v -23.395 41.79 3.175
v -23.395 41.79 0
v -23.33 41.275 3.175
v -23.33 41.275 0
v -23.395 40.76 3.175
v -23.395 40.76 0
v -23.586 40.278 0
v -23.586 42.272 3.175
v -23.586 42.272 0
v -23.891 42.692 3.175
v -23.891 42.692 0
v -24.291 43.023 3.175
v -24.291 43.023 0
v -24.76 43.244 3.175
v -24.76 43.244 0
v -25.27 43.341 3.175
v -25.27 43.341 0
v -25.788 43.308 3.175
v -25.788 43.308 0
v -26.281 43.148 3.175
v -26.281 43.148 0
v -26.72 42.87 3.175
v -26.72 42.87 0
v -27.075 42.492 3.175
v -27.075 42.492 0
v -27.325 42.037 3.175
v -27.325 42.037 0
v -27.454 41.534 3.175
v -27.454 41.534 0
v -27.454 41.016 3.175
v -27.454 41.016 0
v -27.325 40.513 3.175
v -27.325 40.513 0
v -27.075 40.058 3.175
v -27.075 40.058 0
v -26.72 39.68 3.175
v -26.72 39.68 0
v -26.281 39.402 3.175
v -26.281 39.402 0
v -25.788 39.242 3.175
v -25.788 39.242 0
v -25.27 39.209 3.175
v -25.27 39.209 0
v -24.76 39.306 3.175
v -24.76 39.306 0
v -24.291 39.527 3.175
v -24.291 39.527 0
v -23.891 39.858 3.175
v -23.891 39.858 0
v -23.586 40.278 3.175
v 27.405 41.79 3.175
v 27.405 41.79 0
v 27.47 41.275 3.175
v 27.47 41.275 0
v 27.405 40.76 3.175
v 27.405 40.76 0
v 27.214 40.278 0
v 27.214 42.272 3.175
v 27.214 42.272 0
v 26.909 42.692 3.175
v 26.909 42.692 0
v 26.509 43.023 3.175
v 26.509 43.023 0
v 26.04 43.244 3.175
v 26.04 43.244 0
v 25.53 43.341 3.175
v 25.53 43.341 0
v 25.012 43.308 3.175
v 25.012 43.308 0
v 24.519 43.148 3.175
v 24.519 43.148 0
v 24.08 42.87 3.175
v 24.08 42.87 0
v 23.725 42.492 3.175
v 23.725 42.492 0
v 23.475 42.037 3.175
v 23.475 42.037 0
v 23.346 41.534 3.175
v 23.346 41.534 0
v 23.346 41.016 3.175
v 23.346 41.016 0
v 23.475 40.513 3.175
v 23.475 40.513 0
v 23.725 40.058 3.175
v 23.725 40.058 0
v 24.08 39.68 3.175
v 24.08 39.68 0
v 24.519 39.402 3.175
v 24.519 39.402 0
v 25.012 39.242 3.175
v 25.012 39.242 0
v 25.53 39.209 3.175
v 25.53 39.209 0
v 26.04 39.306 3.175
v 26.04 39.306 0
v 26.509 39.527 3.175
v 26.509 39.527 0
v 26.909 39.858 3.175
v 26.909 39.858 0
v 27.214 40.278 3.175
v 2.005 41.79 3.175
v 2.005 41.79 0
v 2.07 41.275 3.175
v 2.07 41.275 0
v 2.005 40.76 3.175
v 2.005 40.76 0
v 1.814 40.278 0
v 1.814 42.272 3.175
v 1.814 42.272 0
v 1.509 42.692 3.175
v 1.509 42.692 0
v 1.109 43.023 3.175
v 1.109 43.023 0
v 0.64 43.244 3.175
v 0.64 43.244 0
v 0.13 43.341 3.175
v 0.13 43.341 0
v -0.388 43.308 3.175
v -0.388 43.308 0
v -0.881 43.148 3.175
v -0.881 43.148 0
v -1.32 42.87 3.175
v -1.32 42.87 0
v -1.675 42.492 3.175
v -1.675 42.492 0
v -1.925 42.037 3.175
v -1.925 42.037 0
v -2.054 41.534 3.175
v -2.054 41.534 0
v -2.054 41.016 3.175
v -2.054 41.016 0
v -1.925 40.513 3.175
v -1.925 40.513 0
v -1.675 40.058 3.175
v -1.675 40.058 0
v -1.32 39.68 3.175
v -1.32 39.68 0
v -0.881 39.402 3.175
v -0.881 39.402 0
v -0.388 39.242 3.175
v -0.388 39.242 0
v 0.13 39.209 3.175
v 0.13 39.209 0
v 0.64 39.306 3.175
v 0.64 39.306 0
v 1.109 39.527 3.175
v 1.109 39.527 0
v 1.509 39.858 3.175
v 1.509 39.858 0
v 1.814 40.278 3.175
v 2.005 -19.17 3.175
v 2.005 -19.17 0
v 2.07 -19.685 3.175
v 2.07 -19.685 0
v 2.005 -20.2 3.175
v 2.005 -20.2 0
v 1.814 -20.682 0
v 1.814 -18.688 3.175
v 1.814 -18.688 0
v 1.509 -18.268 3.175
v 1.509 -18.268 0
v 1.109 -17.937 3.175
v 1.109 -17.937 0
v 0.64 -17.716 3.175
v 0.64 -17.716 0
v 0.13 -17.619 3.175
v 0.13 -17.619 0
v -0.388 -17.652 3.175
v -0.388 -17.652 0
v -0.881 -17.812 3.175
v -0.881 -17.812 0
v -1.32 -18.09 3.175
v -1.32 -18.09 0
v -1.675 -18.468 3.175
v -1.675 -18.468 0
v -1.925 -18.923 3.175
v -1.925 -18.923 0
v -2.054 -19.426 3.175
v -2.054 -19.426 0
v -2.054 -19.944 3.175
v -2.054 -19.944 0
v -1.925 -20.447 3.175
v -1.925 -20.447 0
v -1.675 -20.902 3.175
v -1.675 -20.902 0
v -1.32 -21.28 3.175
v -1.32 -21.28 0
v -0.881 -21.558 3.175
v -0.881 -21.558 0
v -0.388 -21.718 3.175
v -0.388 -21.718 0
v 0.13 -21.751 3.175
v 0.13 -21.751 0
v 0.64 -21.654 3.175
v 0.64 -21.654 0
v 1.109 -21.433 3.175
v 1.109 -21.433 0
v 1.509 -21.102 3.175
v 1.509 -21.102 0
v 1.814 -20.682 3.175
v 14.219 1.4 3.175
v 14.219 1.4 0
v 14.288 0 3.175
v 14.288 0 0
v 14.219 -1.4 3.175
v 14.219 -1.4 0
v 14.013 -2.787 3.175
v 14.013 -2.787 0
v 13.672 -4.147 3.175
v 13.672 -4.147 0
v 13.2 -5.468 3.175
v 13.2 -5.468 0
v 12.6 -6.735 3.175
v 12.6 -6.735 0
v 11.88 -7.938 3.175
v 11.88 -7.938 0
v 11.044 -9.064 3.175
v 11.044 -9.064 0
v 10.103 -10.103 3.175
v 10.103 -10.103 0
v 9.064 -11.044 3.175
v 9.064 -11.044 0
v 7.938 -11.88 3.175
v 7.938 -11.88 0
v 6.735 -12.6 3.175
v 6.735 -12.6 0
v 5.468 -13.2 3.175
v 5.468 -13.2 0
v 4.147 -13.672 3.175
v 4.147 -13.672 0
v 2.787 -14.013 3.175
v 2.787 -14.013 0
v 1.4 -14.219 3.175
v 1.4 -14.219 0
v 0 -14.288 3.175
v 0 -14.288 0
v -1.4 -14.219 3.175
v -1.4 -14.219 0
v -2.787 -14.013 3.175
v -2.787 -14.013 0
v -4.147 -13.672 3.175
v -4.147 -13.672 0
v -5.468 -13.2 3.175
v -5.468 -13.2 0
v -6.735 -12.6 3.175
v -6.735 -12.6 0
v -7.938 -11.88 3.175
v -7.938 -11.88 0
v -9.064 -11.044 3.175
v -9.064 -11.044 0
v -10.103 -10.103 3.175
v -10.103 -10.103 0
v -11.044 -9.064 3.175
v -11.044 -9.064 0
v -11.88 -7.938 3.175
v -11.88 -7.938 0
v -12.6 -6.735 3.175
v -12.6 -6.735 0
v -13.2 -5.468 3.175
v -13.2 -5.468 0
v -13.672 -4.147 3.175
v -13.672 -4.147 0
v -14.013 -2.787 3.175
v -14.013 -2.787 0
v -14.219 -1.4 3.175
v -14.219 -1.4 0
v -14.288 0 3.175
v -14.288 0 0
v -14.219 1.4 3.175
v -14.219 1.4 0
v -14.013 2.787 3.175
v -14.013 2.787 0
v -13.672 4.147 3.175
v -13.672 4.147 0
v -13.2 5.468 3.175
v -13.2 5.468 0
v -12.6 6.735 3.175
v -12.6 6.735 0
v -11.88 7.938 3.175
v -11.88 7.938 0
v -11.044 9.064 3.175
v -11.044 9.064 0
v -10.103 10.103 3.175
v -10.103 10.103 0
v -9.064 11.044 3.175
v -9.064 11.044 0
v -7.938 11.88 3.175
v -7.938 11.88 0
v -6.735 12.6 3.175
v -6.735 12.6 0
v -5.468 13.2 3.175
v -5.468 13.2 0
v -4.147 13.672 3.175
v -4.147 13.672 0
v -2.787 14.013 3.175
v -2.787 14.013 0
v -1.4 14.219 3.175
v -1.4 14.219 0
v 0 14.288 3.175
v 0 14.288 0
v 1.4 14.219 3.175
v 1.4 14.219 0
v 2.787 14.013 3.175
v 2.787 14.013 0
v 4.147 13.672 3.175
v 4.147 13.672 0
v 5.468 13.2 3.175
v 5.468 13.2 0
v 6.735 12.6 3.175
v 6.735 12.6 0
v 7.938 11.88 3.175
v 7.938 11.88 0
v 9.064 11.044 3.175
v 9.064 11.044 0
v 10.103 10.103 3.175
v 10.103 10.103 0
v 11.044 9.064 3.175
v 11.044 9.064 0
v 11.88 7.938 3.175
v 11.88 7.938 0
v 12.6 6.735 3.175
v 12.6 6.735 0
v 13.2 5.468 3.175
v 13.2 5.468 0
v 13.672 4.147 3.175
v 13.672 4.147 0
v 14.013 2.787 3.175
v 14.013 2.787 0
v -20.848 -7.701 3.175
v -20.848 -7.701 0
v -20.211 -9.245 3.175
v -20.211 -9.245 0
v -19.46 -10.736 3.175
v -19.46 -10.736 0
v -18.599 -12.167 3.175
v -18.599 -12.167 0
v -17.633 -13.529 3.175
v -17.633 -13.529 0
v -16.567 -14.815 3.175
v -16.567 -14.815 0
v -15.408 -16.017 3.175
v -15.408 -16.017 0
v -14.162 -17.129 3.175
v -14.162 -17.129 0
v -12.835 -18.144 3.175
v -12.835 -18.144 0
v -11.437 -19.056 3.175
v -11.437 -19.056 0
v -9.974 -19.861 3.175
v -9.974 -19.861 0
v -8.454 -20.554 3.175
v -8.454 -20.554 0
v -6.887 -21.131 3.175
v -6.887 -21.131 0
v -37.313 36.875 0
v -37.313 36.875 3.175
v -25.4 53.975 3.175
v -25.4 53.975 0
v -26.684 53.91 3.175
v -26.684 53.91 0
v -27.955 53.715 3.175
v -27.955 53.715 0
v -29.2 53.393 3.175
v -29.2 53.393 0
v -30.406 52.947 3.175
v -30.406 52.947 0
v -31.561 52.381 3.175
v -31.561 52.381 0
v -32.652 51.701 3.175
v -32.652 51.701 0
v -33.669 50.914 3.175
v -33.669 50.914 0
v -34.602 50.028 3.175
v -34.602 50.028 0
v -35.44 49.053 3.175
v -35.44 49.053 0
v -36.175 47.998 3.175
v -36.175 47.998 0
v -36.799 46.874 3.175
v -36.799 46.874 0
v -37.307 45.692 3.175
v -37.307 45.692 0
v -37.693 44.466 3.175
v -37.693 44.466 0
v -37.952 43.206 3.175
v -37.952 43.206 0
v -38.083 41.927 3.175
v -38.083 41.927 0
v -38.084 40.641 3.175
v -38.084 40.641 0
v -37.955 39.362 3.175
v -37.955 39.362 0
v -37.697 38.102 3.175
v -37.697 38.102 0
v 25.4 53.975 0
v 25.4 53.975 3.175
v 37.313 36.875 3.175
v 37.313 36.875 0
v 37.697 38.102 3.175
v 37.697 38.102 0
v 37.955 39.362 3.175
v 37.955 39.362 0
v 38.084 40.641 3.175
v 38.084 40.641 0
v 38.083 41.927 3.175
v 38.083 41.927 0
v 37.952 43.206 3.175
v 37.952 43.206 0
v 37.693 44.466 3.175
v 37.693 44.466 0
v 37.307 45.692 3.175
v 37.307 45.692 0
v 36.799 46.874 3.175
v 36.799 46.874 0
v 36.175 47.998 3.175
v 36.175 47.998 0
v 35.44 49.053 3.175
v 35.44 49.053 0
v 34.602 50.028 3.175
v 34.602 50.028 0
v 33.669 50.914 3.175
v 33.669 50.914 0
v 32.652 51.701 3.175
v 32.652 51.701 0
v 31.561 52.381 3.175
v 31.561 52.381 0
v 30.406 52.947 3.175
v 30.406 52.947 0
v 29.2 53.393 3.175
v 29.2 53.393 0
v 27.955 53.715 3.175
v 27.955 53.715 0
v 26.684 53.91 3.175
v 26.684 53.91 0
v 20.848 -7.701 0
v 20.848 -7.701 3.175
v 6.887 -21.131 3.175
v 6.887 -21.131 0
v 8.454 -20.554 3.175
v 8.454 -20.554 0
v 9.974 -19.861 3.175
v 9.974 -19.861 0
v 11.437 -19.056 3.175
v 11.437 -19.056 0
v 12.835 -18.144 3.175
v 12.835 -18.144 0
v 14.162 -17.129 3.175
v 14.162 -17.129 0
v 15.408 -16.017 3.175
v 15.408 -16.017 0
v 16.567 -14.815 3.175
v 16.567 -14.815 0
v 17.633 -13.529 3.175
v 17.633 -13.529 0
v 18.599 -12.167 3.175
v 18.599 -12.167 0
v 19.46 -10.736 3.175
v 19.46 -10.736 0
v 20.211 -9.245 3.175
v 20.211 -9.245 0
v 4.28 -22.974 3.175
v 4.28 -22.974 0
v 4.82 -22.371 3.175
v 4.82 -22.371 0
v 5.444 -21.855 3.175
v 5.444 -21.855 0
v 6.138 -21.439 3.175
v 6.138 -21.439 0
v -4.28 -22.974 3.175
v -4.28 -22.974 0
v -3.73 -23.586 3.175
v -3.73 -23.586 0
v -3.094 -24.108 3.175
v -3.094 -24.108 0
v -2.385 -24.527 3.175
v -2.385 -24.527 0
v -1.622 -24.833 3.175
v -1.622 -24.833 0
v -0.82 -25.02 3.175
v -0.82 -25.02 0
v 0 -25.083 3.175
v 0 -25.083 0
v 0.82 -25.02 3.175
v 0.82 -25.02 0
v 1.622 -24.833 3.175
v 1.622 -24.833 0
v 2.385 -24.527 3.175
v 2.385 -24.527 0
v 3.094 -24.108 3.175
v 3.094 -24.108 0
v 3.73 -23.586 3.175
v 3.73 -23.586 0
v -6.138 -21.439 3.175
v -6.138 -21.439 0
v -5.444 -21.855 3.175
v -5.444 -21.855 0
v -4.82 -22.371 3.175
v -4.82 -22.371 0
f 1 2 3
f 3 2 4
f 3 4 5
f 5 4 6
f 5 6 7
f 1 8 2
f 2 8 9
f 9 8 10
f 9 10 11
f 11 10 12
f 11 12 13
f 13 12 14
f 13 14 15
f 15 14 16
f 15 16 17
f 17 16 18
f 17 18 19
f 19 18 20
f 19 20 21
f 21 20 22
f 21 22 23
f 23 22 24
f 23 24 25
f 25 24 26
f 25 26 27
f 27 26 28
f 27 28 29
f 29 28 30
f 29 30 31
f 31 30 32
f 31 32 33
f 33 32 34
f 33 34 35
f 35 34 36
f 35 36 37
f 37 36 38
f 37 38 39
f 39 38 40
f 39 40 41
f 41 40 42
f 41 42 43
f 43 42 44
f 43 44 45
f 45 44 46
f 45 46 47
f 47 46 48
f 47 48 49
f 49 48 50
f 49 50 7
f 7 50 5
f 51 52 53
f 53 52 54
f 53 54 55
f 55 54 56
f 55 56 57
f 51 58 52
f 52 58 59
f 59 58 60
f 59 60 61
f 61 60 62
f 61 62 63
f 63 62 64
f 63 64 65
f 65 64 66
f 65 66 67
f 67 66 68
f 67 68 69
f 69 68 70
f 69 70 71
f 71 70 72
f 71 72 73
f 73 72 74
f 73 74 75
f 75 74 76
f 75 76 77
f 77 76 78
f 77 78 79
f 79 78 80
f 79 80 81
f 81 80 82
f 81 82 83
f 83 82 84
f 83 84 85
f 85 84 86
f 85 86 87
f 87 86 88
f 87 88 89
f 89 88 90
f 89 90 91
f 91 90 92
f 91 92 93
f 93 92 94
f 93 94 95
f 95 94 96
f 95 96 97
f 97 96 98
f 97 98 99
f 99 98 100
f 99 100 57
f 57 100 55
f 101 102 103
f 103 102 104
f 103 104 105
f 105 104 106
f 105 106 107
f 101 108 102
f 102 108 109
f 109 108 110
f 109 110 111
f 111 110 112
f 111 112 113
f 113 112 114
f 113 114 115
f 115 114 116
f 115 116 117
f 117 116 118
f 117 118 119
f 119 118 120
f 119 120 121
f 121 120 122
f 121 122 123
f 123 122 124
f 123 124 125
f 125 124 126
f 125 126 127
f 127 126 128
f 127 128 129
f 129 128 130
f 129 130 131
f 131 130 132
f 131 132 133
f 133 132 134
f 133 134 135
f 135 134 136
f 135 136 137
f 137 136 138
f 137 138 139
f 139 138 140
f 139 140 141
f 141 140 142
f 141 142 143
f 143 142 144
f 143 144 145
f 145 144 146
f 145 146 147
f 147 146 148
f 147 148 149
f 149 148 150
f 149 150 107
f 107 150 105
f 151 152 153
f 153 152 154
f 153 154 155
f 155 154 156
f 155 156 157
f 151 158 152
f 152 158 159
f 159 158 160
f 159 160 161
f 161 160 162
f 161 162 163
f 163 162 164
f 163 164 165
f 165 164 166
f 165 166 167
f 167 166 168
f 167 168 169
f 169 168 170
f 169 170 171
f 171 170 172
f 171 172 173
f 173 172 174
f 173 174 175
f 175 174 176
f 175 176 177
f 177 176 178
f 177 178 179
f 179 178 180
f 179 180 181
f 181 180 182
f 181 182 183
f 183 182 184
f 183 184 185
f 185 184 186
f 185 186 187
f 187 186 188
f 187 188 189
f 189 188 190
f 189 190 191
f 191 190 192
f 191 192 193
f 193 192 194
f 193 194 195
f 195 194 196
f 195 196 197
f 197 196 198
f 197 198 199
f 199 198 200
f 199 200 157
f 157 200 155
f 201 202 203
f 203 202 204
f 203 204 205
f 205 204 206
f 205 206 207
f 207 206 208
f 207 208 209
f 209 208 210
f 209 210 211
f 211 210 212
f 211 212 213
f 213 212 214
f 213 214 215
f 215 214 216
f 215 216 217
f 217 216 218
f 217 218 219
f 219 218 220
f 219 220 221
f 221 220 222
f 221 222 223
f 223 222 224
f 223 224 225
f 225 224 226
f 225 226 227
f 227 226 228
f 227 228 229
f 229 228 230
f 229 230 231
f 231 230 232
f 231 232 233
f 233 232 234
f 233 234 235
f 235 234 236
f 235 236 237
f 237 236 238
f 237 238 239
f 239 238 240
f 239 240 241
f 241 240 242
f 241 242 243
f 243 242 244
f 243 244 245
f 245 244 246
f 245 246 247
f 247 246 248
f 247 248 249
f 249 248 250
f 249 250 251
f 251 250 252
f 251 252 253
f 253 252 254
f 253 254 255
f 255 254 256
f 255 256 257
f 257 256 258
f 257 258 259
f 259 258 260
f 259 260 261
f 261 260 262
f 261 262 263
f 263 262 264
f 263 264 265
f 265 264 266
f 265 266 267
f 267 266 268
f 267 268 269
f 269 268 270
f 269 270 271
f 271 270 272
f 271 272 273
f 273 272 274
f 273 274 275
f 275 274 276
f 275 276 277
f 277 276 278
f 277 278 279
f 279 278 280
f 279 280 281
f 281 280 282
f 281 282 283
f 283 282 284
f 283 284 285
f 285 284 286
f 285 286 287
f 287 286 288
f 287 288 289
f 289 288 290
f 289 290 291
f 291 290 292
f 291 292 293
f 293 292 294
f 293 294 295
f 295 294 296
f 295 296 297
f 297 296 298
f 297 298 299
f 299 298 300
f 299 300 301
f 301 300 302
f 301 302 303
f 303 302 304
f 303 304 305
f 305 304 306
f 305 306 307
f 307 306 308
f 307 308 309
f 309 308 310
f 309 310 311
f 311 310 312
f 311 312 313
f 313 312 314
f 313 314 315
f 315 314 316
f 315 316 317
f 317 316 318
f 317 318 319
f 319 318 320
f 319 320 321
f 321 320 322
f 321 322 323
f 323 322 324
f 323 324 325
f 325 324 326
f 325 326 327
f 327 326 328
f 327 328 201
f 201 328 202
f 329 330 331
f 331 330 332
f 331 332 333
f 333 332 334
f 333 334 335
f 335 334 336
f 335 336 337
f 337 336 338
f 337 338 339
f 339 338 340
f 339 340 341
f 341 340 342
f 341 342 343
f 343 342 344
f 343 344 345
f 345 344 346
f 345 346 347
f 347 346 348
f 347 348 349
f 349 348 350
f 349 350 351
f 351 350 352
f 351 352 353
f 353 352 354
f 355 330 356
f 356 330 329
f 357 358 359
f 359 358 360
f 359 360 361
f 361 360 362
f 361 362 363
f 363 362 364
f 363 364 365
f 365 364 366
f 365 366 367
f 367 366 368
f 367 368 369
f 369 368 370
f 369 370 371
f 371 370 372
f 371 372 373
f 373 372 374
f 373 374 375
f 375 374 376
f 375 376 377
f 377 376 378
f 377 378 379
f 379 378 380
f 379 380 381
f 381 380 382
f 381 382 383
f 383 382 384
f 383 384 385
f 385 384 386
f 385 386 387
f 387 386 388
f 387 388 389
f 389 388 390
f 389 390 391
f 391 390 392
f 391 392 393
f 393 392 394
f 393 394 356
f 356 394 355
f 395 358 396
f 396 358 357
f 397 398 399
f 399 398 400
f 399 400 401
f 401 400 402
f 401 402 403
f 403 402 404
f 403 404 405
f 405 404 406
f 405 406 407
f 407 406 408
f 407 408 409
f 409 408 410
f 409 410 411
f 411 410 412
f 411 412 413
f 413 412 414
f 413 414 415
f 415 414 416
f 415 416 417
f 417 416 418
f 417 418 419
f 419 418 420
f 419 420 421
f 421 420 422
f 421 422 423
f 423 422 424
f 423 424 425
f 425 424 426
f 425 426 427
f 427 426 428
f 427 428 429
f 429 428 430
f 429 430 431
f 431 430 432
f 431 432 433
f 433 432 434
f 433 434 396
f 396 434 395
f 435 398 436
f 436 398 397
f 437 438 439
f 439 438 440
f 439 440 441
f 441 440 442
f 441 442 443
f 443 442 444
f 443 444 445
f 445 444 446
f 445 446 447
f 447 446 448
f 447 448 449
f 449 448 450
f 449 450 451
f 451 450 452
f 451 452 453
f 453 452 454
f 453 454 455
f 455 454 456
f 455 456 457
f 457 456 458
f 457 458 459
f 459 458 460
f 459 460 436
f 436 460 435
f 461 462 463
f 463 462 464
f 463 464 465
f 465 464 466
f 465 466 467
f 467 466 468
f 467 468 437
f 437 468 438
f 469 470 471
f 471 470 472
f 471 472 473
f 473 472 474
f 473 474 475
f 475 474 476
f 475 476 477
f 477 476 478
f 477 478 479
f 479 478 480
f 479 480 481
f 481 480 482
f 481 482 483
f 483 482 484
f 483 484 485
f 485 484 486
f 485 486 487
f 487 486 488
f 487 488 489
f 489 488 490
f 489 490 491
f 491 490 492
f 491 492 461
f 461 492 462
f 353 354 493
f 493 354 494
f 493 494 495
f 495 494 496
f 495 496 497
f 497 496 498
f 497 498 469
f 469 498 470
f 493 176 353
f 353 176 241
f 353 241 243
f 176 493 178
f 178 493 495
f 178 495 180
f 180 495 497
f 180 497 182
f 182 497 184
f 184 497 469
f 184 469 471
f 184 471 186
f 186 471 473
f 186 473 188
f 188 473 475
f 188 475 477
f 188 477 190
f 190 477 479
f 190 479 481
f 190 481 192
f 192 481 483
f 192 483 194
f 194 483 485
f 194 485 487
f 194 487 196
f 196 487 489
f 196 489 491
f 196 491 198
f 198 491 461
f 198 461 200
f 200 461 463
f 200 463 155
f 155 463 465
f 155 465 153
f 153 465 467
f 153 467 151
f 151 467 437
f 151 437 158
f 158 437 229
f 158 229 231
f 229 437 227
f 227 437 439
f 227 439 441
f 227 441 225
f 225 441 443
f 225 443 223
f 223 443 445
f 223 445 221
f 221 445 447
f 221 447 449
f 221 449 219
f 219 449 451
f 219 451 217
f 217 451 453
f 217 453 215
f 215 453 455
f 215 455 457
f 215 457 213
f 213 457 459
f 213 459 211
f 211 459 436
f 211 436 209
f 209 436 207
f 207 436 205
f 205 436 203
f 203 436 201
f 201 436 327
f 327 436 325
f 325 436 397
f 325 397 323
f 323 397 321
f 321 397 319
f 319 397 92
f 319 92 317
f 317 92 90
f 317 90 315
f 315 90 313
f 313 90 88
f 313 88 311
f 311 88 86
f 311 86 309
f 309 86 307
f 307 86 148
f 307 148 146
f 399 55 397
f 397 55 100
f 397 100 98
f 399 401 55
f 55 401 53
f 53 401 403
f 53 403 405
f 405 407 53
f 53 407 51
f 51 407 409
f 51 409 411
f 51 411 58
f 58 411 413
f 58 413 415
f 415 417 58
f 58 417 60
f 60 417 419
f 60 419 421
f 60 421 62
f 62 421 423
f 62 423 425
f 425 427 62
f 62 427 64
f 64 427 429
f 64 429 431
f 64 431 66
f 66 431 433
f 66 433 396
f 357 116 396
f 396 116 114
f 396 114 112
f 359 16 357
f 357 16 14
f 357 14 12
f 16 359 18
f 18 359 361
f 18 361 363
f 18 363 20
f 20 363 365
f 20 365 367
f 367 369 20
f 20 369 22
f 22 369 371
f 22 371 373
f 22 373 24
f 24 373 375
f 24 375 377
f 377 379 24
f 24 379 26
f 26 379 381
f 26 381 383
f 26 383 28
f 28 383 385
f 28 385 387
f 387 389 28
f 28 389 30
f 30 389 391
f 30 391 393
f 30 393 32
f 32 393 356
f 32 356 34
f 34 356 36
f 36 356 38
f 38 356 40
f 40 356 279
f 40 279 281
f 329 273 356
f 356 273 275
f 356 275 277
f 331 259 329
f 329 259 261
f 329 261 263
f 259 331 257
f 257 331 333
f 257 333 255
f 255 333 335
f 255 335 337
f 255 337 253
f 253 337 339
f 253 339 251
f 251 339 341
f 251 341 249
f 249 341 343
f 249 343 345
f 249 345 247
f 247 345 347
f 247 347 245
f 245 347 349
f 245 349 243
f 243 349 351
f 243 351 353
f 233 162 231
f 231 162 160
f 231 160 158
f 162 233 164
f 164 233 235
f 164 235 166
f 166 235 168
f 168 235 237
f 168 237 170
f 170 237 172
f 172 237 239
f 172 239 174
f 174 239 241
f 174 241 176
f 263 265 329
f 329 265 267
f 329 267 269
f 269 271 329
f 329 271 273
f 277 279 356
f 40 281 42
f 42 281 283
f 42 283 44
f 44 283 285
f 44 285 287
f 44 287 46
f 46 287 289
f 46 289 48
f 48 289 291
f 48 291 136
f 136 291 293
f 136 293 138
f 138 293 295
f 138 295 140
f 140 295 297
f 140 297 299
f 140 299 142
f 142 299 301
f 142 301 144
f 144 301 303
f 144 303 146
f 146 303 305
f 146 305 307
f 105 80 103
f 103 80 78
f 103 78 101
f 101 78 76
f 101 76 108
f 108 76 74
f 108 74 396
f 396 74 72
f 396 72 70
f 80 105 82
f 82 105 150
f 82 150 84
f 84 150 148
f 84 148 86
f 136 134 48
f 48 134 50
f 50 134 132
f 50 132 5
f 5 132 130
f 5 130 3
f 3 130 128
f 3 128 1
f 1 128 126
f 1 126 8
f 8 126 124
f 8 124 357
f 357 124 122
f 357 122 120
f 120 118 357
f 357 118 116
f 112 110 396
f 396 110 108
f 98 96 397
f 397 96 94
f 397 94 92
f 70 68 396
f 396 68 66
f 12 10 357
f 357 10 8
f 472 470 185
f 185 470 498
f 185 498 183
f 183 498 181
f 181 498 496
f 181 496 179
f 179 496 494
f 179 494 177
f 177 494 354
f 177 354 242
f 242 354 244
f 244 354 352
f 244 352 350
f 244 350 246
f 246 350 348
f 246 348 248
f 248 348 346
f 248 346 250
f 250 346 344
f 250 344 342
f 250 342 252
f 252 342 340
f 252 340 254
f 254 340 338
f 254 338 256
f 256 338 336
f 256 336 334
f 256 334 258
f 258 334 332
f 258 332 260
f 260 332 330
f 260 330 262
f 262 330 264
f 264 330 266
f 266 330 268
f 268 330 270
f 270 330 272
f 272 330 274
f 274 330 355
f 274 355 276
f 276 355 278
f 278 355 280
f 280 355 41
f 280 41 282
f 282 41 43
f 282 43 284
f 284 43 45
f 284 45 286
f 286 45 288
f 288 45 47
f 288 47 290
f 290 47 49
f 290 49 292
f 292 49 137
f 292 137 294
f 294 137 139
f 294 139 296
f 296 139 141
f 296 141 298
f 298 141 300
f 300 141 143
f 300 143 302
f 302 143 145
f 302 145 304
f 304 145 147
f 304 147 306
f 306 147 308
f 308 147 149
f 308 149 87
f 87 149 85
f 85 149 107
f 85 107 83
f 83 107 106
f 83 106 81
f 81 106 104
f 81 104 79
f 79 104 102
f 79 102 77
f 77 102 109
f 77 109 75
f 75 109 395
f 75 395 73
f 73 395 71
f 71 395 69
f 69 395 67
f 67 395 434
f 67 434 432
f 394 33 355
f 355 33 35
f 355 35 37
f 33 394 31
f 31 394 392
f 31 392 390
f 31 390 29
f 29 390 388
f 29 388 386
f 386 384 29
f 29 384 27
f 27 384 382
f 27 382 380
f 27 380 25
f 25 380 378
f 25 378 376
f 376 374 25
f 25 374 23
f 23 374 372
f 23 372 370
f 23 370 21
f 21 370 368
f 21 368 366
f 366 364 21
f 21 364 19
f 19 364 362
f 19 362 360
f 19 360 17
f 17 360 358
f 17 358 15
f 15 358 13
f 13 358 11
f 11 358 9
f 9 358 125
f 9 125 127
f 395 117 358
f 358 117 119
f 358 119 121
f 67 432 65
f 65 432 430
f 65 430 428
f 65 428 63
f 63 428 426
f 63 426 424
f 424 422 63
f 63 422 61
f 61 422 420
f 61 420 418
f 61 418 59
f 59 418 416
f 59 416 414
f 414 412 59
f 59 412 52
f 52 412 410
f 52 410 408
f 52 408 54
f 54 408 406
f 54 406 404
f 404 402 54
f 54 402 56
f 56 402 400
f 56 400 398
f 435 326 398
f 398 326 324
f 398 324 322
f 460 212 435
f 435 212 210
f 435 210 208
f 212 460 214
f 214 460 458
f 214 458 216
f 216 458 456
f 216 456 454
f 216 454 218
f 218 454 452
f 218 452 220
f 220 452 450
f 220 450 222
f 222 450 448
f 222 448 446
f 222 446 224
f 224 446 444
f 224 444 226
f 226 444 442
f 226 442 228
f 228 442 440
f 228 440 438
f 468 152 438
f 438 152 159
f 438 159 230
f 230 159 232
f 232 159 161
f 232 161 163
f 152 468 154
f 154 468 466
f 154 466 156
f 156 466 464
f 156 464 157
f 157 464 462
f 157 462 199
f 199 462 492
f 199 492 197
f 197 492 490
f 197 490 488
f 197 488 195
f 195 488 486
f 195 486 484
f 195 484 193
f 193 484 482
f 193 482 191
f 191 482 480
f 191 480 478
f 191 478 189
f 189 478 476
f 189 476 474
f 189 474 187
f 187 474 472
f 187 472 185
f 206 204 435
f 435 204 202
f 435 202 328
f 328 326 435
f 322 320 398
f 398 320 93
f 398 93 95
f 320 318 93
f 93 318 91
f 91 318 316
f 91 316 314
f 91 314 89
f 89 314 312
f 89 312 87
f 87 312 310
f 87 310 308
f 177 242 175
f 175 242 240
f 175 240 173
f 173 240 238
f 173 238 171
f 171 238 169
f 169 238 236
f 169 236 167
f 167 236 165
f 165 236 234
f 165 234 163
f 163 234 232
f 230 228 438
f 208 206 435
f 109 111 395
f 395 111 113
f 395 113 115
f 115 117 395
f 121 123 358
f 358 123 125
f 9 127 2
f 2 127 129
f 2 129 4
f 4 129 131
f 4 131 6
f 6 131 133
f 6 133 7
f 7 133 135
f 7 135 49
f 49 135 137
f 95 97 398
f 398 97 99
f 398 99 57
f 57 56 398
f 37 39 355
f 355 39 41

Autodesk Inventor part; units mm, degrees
ref_plane "YZ Plane" through (0, 0, 0) normal (1, 0, 0) x (0, 1, 0)
ref_plane "XZ Plane" through (0, 0, 0) normal (0, 1, 0) x (-1, 0, 0)
ref_plane "XY Plane" through (0, 0, 0) normal (0, 0, 1) x (1, 0, 0)
sketch "Sketch1" plane through (0, 0, 0) normal (0, 0, 1) x (1, 0, 0)
  circle A0 centre (0, 0) radius 14.2875
  circle A1 centre (-25.4, 41.275) radius 2.0701
  circle A2 centre (0, 41.275) radius 2.0701
  circle A3 centre (25.4, 41.275) radius 2.0701
  line L0 (-25.4, 41.275) -> (25.4, 41.275) construction
  circle A4 centre (0, 0) radius 22.225
  line L1 (-25.4, 41.275) -> (25.4, 41.275) construction
  line L2 (-25.4, 28.575) -> (25.4, 28.575) construction
  line L3 (25.4, 53.975) -> (-25.4, 53.975)
  arc A5 (-25.4, 53.975) -> (-25.4, 28.575) centre (-25.4, 41.275) ccw
  arc A6 (25.4, 28.575) -> (25.4, 53.975) centre (25.4, 41.275) ccw
  line L4 (-20.8482, -7.7008) -> (-37.3133, 36.8745)
  line L5 (1.8331, -22.86) -> (-1.8331, -22.86) construction
  line L6 (-1.8331, -22.86) -> (-3.6662, -19.685) construction
  line L7 (-3.6662, -19.685) -> (-1.8331, -16.51) construction
  line L8 (-1.8331, -16.51) -> (1.8331, -16.51) construction
  line L9 (1.8331, -16.51) -> (3.6662, -19.685) construction
  line L10 (3.6662, -19.685) -> (1.8331, -22.86) construction
  circle A7 centre (0, 0) radius 16.51 construction
  circle A8 centre (0, -19.685) radius 2.0701
  line L11 (0, -19.685) -> (0, 0) construction
  circle A9 centre (0, -19.685) radius 5.3975
  arc A10 (-4.2797, -22.9739) -> (-6.8869, -21.1311) centre (-8.5594, -26.2629) ccw
  arc A11 (6.8869, -21.1311) -> (4.2797, -22.9739) centre (8.5594, -26.2629) ccw
  circle A12 centre (0, -19.685) radius 4.0005 construction
  line L12 (20.8482, -7.7008) -> (37.3133, 36.8745)
  point P0 (0, -22.86)
  dimension "d0" = 25.4
  dimension "d4" = 4.1402
  dimension "d5" = 28.575
  dimension "d6" = 44.45
  dimension "d7" = 25.4
  dimension "d10" = 6.35
  dimension "d11" = 33.02
  dimension "d12" = 8.001
  dimension "d13" = 41.275
extrude "Extrusion1" add sketch "Sketch1" along normal blind 3.175
sketch "Sketch2" plane through (0, 0, 3.175) normal (0, 0, 1) x (1, 0, 0)
  arc A0 (-4.2797, -22.9739) -> (-6.8869, -21.1311) centre (-8.5594, -26.2629) ccw projected
  arc A1 (-4.2797, -22.9739) -> (4.2797, -22.9739) centre (0, -19.685) ccw projected
  arc A2 (6.8869, -21.1311) -> (4.2797, -22.9739) centre (8.5594, -26.2629) ccw projected
  arc A3 (6.8869, -21.1311) -> (20.8482, -7.7008) centre (0, 0) ccw projected
  line L0 (20.8482, -7.7008) -> (37.3133, 36.8745) projected
  arc A4 (37.3133, 36.8745) -> (25.4, 53.975) centre (25.4, 41.275) ccw projected
  line L1 (25.4, 53.975) -> (-25.4, 53.975) projected
  arc A5 (-25.4, 53.975) -> (-37.3133, 36.8745) centre (-25.4, 41.275) ccw projected
  line L2 (-37.3133, 36.8745) -> (-20.8482, -7.7008) projected
  arc A6 (-20.8482, -7.7008) -> (-6.8869, -21.1311) centre (0, 0) ccw projected
  circle A7 centre (0, 0) radius 14.2875 projected
  circle A8 centre (0, -19.685) radius 2.0701 projected
  circle A9 centre (0, 41.275) radius 2.0701 projected
  circle A10 centre (25.4, 41.275) radius 2.0701 projected
  circle A11 centre (-25.4, 41.275) radius 2.0701 projected
properties part number "Intake Motor Holder Using 1__16 Gray Tinted Polycarbonate Sheet (36 x 72) (217-6627)" material "Polycarbonate, Clear"
